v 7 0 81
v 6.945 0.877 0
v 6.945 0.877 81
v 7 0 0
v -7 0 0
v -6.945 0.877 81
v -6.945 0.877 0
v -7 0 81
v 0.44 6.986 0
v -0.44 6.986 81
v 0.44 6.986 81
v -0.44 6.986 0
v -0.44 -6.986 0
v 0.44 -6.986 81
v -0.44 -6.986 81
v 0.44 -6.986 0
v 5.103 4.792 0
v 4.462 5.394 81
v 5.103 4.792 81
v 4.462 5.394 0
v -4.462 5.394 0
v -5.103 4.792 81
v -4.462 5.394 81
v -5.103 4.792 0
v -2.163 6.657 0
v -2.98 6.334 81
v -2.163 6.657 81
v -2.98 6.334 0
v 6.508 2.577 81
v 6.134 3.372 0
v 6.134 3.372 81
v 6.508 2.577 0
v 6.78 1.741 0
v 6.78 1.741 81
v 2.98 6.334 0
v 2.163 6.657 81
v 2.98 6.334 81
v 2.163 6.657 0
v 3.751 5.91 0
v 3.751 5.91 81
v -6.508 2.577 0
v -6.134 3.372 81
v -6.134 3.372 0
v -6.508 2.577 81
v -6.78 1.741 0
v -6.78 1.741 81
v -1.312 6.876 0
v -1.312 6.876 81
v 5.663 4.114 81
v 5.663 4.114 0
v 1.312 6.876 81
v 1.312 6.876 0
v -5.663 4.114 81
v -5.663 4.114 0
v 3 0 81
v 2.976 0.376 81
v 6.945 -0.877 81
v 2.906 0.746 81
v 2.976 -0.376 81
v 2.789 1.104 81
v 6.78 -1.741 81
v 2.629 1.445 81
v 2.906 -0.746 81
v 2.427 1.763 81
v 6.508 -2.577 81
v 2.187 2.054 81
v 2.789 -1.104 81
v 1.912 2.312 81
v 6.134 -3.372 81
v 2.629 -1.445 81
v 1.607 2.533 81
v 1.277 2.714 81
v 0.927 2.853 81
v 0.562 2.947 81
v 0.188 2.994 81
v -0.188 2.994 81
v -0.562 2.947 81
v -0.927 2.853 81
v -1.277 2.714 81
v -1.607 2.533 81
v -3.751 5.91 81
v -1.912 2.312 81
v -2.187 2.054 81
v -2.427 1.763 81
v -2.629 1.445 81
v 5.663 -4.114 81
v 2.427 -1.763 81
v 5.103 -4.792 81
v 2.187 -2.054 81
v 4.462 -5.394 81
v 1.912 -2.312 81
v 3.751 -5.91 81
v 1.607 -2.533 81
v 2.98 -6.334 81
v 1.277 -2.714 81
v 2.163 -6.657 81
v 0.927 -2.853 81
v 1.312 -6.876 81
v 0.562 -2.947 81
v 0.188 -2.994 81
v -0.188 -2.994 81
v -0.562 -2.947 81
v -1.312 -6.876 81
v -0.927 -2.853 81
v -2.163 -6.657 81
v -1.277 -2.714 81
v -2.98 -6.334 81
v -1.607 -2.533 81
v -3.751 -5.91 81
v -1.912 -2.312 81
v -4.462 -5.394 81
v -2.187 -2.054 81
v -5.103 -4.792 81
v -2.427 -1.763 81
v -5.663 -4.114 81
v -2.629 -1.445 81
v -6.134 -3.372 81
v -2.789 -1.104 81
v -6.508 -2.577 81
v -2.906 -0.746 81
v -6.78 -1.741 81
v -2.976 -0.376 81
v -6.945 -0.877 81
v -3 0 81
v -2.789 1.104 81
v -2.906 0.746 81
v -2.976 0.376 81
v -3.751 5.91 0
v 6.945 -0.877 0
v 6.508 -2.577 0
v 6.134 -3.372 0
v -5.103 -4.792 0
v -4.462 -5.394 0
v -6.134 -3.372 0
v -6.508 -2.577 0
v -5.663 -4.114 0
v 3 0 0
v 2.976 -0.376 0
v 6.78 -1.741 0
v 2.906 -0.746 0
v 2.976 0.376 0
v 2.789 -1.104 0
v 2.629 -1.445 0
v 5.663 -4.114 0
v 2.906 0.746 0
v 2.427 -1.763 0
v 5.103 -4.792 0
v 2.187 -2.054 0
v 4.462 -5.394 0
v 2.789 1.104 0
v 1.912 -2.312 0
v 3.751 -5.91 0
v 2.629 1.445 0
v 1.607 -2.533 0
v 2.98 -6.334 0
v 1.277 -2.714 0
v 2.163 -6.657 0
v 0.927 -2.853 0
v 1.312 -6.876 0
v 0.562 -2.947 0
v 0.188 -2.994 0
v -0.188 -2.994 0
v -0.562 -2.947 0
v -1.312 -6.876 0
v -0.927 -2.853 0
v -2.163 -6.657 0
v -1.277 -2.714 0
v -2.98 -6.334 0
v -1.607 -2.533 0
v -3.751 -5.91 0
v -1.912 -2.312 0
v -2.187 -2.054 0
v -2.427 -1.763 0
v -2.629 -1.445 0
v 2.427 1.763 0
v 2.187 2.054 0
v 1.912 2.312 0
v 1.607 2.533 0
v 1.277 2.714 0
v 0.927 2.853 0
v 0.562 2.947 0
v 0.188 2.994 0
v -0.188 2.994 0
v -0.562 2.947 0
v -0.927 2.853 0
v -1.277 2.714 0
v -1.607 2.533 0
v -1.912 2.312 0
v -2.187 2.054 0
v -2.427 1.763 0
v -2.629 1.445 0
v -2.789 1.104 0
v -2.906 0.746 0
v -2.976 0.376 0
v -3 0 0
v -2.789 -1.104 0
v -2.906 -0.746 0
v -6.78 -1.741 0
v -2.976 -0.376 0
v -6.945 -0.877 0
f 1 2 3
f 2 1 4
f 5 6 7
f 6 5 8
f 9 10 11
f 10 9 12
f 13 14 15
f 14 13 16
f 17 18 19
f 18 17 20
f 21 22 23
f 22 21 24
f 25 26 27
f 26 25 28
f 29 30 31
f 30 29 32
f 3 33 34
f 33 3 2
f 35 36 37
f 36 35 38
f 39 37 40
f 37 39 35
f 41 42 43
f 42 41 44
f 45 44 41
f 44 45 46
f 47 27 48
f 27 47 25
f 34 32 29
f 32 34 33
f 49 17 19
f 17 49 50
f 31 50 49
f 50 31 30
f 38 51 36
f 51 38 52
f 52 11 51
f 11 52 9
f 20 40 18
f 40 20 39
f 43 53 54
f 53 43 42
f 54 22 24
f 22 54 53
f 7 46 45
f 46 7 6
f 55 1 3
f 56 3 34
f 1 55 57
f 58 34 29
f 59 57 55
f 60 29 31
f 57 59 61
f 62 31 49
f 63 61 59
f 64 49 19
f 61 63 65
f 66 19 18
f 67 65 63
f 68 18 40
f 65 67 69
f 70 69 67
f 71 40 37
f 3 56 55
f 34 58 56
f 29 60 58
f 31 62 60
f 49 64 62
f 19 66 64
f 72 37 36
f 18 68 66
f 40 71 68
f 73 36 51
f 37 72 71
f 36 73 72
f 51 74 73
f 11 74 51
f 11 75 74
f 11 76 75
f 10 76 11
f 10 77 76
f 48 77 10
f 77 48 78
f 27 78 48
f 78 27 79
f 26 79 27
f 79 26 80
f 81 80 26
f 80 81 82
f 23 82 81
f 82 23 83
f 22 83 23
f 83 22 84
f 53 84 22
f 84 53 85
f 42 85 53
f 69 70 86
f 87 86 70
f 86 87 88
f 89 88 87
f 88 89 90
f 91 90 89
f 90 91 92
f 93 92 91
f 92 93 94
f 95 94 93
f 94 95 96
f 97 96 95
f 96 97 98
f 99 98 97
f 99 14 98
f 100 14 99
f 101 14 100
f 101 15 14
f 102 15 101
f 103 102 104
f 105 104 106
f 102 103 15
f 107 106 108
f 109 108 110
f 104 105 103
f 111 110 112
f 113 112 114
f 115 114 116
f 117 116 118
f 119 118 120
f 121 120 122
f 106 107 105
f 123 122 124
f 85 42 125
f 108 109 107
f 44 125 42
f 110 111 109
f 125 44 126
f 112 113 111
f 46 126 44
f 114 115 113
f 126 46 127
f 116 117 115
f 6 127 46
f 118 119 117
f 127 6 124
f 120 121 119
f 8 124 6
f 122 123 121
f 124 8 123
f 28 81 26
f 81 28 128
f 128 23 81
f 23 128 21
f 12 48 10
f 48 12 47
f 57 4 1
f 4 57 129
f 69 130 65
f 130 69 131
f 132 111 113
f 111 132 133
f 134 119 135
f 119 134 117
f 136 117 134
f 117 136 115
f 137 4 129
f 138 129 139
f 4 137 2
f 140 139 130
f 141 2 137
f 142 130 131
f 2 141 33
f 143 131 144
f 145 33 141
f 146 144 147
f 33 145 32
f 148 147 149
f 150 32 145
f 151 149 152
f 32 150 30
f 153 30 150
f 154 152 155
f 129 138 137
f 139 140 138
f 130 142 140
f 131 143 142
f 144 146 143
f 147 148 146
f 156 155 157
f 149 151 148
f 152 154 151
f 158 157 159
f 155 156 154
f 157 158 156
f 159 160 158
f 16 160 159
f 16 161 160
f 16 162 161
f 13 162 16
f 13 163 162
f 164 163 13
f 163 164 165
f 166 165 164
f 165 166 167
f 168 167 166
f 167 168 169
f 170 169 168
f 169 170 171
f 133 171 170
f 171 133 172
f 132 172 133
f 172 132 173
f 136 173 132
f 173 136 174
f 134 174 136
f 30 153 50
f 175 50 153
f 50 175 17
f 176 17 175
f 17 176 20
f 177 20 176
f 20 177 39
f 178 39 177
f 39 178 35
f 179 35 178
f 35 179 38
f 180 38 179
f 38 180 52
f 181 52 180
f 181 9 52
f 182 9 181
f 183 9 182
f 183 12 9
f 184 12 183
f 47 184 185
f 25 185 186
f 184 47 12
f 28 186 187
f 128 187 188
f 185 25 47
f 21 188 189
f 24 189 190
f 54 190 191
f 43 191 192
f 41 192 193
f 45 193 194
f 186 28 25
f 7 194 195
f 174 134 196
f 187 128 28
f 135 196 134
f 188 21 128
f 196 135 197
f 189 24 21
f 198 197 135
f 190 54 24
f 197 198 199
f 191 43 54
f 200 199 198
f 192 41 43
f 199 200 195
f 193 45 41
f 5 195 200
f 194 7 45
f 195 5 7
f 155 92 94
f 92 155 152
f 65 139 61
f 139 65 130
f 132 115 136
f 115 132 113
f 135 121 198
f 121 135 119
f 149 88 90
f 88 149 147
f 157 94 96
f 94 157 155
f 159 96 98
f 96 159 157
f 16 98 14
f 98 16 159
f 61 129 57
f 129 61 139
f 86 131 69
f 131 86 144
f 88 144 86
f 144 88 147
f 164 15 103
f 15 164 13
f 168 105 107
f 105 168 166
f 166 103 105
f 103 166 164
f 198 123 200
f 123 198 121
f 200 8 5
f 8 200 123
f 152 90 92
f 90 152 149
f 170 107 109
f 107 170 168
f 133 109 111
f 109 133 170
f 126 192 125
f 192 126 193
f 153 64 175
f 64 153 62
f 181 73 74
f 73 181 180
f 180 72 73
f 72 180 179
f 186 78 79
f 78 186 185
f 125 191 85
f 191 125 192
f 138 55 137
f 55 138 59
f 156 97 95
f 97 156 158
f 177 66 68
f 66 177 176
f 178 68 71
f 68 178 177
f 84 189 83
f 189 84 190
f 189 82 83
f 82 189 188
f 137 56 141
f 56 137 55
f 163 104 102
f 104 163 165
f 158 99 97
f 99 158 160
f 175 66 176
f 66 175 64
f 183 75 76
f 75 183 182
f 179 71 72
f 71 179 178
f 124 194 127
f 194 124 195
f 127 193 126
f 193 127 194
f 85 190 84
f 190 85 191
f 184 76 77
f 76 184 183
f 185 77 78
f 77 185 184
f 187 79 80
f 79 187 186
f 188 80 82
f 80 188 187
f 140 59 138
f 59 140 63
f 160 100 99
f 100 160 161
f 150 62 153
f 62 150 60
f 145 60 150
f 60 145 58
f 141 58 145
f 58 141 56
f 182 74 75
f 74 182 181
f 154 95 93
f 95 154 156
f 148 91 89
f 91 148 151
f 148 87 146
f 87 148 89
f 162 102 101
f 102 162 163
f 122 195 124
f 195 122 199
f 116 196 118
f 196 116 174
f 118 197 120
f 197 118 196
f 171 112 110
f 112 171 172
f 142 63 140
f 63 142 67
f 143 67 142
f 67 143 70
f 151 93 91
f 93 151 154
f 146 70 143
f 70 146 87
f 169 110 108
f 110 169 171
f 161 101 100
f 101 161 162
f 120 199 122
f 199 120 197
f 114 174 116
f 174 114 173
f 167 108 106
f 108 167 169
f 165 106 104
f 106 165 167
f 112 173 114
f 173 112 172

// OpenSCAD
$fn = 50;


difference() {
	union() {
		cylinder(h = 81, r = 7.0000000000);
	}
	union() {
		translate(v = [0, 0, -100]) {
			cylinder(h = 200, r = 3.0000000000);
		}
	}
}
